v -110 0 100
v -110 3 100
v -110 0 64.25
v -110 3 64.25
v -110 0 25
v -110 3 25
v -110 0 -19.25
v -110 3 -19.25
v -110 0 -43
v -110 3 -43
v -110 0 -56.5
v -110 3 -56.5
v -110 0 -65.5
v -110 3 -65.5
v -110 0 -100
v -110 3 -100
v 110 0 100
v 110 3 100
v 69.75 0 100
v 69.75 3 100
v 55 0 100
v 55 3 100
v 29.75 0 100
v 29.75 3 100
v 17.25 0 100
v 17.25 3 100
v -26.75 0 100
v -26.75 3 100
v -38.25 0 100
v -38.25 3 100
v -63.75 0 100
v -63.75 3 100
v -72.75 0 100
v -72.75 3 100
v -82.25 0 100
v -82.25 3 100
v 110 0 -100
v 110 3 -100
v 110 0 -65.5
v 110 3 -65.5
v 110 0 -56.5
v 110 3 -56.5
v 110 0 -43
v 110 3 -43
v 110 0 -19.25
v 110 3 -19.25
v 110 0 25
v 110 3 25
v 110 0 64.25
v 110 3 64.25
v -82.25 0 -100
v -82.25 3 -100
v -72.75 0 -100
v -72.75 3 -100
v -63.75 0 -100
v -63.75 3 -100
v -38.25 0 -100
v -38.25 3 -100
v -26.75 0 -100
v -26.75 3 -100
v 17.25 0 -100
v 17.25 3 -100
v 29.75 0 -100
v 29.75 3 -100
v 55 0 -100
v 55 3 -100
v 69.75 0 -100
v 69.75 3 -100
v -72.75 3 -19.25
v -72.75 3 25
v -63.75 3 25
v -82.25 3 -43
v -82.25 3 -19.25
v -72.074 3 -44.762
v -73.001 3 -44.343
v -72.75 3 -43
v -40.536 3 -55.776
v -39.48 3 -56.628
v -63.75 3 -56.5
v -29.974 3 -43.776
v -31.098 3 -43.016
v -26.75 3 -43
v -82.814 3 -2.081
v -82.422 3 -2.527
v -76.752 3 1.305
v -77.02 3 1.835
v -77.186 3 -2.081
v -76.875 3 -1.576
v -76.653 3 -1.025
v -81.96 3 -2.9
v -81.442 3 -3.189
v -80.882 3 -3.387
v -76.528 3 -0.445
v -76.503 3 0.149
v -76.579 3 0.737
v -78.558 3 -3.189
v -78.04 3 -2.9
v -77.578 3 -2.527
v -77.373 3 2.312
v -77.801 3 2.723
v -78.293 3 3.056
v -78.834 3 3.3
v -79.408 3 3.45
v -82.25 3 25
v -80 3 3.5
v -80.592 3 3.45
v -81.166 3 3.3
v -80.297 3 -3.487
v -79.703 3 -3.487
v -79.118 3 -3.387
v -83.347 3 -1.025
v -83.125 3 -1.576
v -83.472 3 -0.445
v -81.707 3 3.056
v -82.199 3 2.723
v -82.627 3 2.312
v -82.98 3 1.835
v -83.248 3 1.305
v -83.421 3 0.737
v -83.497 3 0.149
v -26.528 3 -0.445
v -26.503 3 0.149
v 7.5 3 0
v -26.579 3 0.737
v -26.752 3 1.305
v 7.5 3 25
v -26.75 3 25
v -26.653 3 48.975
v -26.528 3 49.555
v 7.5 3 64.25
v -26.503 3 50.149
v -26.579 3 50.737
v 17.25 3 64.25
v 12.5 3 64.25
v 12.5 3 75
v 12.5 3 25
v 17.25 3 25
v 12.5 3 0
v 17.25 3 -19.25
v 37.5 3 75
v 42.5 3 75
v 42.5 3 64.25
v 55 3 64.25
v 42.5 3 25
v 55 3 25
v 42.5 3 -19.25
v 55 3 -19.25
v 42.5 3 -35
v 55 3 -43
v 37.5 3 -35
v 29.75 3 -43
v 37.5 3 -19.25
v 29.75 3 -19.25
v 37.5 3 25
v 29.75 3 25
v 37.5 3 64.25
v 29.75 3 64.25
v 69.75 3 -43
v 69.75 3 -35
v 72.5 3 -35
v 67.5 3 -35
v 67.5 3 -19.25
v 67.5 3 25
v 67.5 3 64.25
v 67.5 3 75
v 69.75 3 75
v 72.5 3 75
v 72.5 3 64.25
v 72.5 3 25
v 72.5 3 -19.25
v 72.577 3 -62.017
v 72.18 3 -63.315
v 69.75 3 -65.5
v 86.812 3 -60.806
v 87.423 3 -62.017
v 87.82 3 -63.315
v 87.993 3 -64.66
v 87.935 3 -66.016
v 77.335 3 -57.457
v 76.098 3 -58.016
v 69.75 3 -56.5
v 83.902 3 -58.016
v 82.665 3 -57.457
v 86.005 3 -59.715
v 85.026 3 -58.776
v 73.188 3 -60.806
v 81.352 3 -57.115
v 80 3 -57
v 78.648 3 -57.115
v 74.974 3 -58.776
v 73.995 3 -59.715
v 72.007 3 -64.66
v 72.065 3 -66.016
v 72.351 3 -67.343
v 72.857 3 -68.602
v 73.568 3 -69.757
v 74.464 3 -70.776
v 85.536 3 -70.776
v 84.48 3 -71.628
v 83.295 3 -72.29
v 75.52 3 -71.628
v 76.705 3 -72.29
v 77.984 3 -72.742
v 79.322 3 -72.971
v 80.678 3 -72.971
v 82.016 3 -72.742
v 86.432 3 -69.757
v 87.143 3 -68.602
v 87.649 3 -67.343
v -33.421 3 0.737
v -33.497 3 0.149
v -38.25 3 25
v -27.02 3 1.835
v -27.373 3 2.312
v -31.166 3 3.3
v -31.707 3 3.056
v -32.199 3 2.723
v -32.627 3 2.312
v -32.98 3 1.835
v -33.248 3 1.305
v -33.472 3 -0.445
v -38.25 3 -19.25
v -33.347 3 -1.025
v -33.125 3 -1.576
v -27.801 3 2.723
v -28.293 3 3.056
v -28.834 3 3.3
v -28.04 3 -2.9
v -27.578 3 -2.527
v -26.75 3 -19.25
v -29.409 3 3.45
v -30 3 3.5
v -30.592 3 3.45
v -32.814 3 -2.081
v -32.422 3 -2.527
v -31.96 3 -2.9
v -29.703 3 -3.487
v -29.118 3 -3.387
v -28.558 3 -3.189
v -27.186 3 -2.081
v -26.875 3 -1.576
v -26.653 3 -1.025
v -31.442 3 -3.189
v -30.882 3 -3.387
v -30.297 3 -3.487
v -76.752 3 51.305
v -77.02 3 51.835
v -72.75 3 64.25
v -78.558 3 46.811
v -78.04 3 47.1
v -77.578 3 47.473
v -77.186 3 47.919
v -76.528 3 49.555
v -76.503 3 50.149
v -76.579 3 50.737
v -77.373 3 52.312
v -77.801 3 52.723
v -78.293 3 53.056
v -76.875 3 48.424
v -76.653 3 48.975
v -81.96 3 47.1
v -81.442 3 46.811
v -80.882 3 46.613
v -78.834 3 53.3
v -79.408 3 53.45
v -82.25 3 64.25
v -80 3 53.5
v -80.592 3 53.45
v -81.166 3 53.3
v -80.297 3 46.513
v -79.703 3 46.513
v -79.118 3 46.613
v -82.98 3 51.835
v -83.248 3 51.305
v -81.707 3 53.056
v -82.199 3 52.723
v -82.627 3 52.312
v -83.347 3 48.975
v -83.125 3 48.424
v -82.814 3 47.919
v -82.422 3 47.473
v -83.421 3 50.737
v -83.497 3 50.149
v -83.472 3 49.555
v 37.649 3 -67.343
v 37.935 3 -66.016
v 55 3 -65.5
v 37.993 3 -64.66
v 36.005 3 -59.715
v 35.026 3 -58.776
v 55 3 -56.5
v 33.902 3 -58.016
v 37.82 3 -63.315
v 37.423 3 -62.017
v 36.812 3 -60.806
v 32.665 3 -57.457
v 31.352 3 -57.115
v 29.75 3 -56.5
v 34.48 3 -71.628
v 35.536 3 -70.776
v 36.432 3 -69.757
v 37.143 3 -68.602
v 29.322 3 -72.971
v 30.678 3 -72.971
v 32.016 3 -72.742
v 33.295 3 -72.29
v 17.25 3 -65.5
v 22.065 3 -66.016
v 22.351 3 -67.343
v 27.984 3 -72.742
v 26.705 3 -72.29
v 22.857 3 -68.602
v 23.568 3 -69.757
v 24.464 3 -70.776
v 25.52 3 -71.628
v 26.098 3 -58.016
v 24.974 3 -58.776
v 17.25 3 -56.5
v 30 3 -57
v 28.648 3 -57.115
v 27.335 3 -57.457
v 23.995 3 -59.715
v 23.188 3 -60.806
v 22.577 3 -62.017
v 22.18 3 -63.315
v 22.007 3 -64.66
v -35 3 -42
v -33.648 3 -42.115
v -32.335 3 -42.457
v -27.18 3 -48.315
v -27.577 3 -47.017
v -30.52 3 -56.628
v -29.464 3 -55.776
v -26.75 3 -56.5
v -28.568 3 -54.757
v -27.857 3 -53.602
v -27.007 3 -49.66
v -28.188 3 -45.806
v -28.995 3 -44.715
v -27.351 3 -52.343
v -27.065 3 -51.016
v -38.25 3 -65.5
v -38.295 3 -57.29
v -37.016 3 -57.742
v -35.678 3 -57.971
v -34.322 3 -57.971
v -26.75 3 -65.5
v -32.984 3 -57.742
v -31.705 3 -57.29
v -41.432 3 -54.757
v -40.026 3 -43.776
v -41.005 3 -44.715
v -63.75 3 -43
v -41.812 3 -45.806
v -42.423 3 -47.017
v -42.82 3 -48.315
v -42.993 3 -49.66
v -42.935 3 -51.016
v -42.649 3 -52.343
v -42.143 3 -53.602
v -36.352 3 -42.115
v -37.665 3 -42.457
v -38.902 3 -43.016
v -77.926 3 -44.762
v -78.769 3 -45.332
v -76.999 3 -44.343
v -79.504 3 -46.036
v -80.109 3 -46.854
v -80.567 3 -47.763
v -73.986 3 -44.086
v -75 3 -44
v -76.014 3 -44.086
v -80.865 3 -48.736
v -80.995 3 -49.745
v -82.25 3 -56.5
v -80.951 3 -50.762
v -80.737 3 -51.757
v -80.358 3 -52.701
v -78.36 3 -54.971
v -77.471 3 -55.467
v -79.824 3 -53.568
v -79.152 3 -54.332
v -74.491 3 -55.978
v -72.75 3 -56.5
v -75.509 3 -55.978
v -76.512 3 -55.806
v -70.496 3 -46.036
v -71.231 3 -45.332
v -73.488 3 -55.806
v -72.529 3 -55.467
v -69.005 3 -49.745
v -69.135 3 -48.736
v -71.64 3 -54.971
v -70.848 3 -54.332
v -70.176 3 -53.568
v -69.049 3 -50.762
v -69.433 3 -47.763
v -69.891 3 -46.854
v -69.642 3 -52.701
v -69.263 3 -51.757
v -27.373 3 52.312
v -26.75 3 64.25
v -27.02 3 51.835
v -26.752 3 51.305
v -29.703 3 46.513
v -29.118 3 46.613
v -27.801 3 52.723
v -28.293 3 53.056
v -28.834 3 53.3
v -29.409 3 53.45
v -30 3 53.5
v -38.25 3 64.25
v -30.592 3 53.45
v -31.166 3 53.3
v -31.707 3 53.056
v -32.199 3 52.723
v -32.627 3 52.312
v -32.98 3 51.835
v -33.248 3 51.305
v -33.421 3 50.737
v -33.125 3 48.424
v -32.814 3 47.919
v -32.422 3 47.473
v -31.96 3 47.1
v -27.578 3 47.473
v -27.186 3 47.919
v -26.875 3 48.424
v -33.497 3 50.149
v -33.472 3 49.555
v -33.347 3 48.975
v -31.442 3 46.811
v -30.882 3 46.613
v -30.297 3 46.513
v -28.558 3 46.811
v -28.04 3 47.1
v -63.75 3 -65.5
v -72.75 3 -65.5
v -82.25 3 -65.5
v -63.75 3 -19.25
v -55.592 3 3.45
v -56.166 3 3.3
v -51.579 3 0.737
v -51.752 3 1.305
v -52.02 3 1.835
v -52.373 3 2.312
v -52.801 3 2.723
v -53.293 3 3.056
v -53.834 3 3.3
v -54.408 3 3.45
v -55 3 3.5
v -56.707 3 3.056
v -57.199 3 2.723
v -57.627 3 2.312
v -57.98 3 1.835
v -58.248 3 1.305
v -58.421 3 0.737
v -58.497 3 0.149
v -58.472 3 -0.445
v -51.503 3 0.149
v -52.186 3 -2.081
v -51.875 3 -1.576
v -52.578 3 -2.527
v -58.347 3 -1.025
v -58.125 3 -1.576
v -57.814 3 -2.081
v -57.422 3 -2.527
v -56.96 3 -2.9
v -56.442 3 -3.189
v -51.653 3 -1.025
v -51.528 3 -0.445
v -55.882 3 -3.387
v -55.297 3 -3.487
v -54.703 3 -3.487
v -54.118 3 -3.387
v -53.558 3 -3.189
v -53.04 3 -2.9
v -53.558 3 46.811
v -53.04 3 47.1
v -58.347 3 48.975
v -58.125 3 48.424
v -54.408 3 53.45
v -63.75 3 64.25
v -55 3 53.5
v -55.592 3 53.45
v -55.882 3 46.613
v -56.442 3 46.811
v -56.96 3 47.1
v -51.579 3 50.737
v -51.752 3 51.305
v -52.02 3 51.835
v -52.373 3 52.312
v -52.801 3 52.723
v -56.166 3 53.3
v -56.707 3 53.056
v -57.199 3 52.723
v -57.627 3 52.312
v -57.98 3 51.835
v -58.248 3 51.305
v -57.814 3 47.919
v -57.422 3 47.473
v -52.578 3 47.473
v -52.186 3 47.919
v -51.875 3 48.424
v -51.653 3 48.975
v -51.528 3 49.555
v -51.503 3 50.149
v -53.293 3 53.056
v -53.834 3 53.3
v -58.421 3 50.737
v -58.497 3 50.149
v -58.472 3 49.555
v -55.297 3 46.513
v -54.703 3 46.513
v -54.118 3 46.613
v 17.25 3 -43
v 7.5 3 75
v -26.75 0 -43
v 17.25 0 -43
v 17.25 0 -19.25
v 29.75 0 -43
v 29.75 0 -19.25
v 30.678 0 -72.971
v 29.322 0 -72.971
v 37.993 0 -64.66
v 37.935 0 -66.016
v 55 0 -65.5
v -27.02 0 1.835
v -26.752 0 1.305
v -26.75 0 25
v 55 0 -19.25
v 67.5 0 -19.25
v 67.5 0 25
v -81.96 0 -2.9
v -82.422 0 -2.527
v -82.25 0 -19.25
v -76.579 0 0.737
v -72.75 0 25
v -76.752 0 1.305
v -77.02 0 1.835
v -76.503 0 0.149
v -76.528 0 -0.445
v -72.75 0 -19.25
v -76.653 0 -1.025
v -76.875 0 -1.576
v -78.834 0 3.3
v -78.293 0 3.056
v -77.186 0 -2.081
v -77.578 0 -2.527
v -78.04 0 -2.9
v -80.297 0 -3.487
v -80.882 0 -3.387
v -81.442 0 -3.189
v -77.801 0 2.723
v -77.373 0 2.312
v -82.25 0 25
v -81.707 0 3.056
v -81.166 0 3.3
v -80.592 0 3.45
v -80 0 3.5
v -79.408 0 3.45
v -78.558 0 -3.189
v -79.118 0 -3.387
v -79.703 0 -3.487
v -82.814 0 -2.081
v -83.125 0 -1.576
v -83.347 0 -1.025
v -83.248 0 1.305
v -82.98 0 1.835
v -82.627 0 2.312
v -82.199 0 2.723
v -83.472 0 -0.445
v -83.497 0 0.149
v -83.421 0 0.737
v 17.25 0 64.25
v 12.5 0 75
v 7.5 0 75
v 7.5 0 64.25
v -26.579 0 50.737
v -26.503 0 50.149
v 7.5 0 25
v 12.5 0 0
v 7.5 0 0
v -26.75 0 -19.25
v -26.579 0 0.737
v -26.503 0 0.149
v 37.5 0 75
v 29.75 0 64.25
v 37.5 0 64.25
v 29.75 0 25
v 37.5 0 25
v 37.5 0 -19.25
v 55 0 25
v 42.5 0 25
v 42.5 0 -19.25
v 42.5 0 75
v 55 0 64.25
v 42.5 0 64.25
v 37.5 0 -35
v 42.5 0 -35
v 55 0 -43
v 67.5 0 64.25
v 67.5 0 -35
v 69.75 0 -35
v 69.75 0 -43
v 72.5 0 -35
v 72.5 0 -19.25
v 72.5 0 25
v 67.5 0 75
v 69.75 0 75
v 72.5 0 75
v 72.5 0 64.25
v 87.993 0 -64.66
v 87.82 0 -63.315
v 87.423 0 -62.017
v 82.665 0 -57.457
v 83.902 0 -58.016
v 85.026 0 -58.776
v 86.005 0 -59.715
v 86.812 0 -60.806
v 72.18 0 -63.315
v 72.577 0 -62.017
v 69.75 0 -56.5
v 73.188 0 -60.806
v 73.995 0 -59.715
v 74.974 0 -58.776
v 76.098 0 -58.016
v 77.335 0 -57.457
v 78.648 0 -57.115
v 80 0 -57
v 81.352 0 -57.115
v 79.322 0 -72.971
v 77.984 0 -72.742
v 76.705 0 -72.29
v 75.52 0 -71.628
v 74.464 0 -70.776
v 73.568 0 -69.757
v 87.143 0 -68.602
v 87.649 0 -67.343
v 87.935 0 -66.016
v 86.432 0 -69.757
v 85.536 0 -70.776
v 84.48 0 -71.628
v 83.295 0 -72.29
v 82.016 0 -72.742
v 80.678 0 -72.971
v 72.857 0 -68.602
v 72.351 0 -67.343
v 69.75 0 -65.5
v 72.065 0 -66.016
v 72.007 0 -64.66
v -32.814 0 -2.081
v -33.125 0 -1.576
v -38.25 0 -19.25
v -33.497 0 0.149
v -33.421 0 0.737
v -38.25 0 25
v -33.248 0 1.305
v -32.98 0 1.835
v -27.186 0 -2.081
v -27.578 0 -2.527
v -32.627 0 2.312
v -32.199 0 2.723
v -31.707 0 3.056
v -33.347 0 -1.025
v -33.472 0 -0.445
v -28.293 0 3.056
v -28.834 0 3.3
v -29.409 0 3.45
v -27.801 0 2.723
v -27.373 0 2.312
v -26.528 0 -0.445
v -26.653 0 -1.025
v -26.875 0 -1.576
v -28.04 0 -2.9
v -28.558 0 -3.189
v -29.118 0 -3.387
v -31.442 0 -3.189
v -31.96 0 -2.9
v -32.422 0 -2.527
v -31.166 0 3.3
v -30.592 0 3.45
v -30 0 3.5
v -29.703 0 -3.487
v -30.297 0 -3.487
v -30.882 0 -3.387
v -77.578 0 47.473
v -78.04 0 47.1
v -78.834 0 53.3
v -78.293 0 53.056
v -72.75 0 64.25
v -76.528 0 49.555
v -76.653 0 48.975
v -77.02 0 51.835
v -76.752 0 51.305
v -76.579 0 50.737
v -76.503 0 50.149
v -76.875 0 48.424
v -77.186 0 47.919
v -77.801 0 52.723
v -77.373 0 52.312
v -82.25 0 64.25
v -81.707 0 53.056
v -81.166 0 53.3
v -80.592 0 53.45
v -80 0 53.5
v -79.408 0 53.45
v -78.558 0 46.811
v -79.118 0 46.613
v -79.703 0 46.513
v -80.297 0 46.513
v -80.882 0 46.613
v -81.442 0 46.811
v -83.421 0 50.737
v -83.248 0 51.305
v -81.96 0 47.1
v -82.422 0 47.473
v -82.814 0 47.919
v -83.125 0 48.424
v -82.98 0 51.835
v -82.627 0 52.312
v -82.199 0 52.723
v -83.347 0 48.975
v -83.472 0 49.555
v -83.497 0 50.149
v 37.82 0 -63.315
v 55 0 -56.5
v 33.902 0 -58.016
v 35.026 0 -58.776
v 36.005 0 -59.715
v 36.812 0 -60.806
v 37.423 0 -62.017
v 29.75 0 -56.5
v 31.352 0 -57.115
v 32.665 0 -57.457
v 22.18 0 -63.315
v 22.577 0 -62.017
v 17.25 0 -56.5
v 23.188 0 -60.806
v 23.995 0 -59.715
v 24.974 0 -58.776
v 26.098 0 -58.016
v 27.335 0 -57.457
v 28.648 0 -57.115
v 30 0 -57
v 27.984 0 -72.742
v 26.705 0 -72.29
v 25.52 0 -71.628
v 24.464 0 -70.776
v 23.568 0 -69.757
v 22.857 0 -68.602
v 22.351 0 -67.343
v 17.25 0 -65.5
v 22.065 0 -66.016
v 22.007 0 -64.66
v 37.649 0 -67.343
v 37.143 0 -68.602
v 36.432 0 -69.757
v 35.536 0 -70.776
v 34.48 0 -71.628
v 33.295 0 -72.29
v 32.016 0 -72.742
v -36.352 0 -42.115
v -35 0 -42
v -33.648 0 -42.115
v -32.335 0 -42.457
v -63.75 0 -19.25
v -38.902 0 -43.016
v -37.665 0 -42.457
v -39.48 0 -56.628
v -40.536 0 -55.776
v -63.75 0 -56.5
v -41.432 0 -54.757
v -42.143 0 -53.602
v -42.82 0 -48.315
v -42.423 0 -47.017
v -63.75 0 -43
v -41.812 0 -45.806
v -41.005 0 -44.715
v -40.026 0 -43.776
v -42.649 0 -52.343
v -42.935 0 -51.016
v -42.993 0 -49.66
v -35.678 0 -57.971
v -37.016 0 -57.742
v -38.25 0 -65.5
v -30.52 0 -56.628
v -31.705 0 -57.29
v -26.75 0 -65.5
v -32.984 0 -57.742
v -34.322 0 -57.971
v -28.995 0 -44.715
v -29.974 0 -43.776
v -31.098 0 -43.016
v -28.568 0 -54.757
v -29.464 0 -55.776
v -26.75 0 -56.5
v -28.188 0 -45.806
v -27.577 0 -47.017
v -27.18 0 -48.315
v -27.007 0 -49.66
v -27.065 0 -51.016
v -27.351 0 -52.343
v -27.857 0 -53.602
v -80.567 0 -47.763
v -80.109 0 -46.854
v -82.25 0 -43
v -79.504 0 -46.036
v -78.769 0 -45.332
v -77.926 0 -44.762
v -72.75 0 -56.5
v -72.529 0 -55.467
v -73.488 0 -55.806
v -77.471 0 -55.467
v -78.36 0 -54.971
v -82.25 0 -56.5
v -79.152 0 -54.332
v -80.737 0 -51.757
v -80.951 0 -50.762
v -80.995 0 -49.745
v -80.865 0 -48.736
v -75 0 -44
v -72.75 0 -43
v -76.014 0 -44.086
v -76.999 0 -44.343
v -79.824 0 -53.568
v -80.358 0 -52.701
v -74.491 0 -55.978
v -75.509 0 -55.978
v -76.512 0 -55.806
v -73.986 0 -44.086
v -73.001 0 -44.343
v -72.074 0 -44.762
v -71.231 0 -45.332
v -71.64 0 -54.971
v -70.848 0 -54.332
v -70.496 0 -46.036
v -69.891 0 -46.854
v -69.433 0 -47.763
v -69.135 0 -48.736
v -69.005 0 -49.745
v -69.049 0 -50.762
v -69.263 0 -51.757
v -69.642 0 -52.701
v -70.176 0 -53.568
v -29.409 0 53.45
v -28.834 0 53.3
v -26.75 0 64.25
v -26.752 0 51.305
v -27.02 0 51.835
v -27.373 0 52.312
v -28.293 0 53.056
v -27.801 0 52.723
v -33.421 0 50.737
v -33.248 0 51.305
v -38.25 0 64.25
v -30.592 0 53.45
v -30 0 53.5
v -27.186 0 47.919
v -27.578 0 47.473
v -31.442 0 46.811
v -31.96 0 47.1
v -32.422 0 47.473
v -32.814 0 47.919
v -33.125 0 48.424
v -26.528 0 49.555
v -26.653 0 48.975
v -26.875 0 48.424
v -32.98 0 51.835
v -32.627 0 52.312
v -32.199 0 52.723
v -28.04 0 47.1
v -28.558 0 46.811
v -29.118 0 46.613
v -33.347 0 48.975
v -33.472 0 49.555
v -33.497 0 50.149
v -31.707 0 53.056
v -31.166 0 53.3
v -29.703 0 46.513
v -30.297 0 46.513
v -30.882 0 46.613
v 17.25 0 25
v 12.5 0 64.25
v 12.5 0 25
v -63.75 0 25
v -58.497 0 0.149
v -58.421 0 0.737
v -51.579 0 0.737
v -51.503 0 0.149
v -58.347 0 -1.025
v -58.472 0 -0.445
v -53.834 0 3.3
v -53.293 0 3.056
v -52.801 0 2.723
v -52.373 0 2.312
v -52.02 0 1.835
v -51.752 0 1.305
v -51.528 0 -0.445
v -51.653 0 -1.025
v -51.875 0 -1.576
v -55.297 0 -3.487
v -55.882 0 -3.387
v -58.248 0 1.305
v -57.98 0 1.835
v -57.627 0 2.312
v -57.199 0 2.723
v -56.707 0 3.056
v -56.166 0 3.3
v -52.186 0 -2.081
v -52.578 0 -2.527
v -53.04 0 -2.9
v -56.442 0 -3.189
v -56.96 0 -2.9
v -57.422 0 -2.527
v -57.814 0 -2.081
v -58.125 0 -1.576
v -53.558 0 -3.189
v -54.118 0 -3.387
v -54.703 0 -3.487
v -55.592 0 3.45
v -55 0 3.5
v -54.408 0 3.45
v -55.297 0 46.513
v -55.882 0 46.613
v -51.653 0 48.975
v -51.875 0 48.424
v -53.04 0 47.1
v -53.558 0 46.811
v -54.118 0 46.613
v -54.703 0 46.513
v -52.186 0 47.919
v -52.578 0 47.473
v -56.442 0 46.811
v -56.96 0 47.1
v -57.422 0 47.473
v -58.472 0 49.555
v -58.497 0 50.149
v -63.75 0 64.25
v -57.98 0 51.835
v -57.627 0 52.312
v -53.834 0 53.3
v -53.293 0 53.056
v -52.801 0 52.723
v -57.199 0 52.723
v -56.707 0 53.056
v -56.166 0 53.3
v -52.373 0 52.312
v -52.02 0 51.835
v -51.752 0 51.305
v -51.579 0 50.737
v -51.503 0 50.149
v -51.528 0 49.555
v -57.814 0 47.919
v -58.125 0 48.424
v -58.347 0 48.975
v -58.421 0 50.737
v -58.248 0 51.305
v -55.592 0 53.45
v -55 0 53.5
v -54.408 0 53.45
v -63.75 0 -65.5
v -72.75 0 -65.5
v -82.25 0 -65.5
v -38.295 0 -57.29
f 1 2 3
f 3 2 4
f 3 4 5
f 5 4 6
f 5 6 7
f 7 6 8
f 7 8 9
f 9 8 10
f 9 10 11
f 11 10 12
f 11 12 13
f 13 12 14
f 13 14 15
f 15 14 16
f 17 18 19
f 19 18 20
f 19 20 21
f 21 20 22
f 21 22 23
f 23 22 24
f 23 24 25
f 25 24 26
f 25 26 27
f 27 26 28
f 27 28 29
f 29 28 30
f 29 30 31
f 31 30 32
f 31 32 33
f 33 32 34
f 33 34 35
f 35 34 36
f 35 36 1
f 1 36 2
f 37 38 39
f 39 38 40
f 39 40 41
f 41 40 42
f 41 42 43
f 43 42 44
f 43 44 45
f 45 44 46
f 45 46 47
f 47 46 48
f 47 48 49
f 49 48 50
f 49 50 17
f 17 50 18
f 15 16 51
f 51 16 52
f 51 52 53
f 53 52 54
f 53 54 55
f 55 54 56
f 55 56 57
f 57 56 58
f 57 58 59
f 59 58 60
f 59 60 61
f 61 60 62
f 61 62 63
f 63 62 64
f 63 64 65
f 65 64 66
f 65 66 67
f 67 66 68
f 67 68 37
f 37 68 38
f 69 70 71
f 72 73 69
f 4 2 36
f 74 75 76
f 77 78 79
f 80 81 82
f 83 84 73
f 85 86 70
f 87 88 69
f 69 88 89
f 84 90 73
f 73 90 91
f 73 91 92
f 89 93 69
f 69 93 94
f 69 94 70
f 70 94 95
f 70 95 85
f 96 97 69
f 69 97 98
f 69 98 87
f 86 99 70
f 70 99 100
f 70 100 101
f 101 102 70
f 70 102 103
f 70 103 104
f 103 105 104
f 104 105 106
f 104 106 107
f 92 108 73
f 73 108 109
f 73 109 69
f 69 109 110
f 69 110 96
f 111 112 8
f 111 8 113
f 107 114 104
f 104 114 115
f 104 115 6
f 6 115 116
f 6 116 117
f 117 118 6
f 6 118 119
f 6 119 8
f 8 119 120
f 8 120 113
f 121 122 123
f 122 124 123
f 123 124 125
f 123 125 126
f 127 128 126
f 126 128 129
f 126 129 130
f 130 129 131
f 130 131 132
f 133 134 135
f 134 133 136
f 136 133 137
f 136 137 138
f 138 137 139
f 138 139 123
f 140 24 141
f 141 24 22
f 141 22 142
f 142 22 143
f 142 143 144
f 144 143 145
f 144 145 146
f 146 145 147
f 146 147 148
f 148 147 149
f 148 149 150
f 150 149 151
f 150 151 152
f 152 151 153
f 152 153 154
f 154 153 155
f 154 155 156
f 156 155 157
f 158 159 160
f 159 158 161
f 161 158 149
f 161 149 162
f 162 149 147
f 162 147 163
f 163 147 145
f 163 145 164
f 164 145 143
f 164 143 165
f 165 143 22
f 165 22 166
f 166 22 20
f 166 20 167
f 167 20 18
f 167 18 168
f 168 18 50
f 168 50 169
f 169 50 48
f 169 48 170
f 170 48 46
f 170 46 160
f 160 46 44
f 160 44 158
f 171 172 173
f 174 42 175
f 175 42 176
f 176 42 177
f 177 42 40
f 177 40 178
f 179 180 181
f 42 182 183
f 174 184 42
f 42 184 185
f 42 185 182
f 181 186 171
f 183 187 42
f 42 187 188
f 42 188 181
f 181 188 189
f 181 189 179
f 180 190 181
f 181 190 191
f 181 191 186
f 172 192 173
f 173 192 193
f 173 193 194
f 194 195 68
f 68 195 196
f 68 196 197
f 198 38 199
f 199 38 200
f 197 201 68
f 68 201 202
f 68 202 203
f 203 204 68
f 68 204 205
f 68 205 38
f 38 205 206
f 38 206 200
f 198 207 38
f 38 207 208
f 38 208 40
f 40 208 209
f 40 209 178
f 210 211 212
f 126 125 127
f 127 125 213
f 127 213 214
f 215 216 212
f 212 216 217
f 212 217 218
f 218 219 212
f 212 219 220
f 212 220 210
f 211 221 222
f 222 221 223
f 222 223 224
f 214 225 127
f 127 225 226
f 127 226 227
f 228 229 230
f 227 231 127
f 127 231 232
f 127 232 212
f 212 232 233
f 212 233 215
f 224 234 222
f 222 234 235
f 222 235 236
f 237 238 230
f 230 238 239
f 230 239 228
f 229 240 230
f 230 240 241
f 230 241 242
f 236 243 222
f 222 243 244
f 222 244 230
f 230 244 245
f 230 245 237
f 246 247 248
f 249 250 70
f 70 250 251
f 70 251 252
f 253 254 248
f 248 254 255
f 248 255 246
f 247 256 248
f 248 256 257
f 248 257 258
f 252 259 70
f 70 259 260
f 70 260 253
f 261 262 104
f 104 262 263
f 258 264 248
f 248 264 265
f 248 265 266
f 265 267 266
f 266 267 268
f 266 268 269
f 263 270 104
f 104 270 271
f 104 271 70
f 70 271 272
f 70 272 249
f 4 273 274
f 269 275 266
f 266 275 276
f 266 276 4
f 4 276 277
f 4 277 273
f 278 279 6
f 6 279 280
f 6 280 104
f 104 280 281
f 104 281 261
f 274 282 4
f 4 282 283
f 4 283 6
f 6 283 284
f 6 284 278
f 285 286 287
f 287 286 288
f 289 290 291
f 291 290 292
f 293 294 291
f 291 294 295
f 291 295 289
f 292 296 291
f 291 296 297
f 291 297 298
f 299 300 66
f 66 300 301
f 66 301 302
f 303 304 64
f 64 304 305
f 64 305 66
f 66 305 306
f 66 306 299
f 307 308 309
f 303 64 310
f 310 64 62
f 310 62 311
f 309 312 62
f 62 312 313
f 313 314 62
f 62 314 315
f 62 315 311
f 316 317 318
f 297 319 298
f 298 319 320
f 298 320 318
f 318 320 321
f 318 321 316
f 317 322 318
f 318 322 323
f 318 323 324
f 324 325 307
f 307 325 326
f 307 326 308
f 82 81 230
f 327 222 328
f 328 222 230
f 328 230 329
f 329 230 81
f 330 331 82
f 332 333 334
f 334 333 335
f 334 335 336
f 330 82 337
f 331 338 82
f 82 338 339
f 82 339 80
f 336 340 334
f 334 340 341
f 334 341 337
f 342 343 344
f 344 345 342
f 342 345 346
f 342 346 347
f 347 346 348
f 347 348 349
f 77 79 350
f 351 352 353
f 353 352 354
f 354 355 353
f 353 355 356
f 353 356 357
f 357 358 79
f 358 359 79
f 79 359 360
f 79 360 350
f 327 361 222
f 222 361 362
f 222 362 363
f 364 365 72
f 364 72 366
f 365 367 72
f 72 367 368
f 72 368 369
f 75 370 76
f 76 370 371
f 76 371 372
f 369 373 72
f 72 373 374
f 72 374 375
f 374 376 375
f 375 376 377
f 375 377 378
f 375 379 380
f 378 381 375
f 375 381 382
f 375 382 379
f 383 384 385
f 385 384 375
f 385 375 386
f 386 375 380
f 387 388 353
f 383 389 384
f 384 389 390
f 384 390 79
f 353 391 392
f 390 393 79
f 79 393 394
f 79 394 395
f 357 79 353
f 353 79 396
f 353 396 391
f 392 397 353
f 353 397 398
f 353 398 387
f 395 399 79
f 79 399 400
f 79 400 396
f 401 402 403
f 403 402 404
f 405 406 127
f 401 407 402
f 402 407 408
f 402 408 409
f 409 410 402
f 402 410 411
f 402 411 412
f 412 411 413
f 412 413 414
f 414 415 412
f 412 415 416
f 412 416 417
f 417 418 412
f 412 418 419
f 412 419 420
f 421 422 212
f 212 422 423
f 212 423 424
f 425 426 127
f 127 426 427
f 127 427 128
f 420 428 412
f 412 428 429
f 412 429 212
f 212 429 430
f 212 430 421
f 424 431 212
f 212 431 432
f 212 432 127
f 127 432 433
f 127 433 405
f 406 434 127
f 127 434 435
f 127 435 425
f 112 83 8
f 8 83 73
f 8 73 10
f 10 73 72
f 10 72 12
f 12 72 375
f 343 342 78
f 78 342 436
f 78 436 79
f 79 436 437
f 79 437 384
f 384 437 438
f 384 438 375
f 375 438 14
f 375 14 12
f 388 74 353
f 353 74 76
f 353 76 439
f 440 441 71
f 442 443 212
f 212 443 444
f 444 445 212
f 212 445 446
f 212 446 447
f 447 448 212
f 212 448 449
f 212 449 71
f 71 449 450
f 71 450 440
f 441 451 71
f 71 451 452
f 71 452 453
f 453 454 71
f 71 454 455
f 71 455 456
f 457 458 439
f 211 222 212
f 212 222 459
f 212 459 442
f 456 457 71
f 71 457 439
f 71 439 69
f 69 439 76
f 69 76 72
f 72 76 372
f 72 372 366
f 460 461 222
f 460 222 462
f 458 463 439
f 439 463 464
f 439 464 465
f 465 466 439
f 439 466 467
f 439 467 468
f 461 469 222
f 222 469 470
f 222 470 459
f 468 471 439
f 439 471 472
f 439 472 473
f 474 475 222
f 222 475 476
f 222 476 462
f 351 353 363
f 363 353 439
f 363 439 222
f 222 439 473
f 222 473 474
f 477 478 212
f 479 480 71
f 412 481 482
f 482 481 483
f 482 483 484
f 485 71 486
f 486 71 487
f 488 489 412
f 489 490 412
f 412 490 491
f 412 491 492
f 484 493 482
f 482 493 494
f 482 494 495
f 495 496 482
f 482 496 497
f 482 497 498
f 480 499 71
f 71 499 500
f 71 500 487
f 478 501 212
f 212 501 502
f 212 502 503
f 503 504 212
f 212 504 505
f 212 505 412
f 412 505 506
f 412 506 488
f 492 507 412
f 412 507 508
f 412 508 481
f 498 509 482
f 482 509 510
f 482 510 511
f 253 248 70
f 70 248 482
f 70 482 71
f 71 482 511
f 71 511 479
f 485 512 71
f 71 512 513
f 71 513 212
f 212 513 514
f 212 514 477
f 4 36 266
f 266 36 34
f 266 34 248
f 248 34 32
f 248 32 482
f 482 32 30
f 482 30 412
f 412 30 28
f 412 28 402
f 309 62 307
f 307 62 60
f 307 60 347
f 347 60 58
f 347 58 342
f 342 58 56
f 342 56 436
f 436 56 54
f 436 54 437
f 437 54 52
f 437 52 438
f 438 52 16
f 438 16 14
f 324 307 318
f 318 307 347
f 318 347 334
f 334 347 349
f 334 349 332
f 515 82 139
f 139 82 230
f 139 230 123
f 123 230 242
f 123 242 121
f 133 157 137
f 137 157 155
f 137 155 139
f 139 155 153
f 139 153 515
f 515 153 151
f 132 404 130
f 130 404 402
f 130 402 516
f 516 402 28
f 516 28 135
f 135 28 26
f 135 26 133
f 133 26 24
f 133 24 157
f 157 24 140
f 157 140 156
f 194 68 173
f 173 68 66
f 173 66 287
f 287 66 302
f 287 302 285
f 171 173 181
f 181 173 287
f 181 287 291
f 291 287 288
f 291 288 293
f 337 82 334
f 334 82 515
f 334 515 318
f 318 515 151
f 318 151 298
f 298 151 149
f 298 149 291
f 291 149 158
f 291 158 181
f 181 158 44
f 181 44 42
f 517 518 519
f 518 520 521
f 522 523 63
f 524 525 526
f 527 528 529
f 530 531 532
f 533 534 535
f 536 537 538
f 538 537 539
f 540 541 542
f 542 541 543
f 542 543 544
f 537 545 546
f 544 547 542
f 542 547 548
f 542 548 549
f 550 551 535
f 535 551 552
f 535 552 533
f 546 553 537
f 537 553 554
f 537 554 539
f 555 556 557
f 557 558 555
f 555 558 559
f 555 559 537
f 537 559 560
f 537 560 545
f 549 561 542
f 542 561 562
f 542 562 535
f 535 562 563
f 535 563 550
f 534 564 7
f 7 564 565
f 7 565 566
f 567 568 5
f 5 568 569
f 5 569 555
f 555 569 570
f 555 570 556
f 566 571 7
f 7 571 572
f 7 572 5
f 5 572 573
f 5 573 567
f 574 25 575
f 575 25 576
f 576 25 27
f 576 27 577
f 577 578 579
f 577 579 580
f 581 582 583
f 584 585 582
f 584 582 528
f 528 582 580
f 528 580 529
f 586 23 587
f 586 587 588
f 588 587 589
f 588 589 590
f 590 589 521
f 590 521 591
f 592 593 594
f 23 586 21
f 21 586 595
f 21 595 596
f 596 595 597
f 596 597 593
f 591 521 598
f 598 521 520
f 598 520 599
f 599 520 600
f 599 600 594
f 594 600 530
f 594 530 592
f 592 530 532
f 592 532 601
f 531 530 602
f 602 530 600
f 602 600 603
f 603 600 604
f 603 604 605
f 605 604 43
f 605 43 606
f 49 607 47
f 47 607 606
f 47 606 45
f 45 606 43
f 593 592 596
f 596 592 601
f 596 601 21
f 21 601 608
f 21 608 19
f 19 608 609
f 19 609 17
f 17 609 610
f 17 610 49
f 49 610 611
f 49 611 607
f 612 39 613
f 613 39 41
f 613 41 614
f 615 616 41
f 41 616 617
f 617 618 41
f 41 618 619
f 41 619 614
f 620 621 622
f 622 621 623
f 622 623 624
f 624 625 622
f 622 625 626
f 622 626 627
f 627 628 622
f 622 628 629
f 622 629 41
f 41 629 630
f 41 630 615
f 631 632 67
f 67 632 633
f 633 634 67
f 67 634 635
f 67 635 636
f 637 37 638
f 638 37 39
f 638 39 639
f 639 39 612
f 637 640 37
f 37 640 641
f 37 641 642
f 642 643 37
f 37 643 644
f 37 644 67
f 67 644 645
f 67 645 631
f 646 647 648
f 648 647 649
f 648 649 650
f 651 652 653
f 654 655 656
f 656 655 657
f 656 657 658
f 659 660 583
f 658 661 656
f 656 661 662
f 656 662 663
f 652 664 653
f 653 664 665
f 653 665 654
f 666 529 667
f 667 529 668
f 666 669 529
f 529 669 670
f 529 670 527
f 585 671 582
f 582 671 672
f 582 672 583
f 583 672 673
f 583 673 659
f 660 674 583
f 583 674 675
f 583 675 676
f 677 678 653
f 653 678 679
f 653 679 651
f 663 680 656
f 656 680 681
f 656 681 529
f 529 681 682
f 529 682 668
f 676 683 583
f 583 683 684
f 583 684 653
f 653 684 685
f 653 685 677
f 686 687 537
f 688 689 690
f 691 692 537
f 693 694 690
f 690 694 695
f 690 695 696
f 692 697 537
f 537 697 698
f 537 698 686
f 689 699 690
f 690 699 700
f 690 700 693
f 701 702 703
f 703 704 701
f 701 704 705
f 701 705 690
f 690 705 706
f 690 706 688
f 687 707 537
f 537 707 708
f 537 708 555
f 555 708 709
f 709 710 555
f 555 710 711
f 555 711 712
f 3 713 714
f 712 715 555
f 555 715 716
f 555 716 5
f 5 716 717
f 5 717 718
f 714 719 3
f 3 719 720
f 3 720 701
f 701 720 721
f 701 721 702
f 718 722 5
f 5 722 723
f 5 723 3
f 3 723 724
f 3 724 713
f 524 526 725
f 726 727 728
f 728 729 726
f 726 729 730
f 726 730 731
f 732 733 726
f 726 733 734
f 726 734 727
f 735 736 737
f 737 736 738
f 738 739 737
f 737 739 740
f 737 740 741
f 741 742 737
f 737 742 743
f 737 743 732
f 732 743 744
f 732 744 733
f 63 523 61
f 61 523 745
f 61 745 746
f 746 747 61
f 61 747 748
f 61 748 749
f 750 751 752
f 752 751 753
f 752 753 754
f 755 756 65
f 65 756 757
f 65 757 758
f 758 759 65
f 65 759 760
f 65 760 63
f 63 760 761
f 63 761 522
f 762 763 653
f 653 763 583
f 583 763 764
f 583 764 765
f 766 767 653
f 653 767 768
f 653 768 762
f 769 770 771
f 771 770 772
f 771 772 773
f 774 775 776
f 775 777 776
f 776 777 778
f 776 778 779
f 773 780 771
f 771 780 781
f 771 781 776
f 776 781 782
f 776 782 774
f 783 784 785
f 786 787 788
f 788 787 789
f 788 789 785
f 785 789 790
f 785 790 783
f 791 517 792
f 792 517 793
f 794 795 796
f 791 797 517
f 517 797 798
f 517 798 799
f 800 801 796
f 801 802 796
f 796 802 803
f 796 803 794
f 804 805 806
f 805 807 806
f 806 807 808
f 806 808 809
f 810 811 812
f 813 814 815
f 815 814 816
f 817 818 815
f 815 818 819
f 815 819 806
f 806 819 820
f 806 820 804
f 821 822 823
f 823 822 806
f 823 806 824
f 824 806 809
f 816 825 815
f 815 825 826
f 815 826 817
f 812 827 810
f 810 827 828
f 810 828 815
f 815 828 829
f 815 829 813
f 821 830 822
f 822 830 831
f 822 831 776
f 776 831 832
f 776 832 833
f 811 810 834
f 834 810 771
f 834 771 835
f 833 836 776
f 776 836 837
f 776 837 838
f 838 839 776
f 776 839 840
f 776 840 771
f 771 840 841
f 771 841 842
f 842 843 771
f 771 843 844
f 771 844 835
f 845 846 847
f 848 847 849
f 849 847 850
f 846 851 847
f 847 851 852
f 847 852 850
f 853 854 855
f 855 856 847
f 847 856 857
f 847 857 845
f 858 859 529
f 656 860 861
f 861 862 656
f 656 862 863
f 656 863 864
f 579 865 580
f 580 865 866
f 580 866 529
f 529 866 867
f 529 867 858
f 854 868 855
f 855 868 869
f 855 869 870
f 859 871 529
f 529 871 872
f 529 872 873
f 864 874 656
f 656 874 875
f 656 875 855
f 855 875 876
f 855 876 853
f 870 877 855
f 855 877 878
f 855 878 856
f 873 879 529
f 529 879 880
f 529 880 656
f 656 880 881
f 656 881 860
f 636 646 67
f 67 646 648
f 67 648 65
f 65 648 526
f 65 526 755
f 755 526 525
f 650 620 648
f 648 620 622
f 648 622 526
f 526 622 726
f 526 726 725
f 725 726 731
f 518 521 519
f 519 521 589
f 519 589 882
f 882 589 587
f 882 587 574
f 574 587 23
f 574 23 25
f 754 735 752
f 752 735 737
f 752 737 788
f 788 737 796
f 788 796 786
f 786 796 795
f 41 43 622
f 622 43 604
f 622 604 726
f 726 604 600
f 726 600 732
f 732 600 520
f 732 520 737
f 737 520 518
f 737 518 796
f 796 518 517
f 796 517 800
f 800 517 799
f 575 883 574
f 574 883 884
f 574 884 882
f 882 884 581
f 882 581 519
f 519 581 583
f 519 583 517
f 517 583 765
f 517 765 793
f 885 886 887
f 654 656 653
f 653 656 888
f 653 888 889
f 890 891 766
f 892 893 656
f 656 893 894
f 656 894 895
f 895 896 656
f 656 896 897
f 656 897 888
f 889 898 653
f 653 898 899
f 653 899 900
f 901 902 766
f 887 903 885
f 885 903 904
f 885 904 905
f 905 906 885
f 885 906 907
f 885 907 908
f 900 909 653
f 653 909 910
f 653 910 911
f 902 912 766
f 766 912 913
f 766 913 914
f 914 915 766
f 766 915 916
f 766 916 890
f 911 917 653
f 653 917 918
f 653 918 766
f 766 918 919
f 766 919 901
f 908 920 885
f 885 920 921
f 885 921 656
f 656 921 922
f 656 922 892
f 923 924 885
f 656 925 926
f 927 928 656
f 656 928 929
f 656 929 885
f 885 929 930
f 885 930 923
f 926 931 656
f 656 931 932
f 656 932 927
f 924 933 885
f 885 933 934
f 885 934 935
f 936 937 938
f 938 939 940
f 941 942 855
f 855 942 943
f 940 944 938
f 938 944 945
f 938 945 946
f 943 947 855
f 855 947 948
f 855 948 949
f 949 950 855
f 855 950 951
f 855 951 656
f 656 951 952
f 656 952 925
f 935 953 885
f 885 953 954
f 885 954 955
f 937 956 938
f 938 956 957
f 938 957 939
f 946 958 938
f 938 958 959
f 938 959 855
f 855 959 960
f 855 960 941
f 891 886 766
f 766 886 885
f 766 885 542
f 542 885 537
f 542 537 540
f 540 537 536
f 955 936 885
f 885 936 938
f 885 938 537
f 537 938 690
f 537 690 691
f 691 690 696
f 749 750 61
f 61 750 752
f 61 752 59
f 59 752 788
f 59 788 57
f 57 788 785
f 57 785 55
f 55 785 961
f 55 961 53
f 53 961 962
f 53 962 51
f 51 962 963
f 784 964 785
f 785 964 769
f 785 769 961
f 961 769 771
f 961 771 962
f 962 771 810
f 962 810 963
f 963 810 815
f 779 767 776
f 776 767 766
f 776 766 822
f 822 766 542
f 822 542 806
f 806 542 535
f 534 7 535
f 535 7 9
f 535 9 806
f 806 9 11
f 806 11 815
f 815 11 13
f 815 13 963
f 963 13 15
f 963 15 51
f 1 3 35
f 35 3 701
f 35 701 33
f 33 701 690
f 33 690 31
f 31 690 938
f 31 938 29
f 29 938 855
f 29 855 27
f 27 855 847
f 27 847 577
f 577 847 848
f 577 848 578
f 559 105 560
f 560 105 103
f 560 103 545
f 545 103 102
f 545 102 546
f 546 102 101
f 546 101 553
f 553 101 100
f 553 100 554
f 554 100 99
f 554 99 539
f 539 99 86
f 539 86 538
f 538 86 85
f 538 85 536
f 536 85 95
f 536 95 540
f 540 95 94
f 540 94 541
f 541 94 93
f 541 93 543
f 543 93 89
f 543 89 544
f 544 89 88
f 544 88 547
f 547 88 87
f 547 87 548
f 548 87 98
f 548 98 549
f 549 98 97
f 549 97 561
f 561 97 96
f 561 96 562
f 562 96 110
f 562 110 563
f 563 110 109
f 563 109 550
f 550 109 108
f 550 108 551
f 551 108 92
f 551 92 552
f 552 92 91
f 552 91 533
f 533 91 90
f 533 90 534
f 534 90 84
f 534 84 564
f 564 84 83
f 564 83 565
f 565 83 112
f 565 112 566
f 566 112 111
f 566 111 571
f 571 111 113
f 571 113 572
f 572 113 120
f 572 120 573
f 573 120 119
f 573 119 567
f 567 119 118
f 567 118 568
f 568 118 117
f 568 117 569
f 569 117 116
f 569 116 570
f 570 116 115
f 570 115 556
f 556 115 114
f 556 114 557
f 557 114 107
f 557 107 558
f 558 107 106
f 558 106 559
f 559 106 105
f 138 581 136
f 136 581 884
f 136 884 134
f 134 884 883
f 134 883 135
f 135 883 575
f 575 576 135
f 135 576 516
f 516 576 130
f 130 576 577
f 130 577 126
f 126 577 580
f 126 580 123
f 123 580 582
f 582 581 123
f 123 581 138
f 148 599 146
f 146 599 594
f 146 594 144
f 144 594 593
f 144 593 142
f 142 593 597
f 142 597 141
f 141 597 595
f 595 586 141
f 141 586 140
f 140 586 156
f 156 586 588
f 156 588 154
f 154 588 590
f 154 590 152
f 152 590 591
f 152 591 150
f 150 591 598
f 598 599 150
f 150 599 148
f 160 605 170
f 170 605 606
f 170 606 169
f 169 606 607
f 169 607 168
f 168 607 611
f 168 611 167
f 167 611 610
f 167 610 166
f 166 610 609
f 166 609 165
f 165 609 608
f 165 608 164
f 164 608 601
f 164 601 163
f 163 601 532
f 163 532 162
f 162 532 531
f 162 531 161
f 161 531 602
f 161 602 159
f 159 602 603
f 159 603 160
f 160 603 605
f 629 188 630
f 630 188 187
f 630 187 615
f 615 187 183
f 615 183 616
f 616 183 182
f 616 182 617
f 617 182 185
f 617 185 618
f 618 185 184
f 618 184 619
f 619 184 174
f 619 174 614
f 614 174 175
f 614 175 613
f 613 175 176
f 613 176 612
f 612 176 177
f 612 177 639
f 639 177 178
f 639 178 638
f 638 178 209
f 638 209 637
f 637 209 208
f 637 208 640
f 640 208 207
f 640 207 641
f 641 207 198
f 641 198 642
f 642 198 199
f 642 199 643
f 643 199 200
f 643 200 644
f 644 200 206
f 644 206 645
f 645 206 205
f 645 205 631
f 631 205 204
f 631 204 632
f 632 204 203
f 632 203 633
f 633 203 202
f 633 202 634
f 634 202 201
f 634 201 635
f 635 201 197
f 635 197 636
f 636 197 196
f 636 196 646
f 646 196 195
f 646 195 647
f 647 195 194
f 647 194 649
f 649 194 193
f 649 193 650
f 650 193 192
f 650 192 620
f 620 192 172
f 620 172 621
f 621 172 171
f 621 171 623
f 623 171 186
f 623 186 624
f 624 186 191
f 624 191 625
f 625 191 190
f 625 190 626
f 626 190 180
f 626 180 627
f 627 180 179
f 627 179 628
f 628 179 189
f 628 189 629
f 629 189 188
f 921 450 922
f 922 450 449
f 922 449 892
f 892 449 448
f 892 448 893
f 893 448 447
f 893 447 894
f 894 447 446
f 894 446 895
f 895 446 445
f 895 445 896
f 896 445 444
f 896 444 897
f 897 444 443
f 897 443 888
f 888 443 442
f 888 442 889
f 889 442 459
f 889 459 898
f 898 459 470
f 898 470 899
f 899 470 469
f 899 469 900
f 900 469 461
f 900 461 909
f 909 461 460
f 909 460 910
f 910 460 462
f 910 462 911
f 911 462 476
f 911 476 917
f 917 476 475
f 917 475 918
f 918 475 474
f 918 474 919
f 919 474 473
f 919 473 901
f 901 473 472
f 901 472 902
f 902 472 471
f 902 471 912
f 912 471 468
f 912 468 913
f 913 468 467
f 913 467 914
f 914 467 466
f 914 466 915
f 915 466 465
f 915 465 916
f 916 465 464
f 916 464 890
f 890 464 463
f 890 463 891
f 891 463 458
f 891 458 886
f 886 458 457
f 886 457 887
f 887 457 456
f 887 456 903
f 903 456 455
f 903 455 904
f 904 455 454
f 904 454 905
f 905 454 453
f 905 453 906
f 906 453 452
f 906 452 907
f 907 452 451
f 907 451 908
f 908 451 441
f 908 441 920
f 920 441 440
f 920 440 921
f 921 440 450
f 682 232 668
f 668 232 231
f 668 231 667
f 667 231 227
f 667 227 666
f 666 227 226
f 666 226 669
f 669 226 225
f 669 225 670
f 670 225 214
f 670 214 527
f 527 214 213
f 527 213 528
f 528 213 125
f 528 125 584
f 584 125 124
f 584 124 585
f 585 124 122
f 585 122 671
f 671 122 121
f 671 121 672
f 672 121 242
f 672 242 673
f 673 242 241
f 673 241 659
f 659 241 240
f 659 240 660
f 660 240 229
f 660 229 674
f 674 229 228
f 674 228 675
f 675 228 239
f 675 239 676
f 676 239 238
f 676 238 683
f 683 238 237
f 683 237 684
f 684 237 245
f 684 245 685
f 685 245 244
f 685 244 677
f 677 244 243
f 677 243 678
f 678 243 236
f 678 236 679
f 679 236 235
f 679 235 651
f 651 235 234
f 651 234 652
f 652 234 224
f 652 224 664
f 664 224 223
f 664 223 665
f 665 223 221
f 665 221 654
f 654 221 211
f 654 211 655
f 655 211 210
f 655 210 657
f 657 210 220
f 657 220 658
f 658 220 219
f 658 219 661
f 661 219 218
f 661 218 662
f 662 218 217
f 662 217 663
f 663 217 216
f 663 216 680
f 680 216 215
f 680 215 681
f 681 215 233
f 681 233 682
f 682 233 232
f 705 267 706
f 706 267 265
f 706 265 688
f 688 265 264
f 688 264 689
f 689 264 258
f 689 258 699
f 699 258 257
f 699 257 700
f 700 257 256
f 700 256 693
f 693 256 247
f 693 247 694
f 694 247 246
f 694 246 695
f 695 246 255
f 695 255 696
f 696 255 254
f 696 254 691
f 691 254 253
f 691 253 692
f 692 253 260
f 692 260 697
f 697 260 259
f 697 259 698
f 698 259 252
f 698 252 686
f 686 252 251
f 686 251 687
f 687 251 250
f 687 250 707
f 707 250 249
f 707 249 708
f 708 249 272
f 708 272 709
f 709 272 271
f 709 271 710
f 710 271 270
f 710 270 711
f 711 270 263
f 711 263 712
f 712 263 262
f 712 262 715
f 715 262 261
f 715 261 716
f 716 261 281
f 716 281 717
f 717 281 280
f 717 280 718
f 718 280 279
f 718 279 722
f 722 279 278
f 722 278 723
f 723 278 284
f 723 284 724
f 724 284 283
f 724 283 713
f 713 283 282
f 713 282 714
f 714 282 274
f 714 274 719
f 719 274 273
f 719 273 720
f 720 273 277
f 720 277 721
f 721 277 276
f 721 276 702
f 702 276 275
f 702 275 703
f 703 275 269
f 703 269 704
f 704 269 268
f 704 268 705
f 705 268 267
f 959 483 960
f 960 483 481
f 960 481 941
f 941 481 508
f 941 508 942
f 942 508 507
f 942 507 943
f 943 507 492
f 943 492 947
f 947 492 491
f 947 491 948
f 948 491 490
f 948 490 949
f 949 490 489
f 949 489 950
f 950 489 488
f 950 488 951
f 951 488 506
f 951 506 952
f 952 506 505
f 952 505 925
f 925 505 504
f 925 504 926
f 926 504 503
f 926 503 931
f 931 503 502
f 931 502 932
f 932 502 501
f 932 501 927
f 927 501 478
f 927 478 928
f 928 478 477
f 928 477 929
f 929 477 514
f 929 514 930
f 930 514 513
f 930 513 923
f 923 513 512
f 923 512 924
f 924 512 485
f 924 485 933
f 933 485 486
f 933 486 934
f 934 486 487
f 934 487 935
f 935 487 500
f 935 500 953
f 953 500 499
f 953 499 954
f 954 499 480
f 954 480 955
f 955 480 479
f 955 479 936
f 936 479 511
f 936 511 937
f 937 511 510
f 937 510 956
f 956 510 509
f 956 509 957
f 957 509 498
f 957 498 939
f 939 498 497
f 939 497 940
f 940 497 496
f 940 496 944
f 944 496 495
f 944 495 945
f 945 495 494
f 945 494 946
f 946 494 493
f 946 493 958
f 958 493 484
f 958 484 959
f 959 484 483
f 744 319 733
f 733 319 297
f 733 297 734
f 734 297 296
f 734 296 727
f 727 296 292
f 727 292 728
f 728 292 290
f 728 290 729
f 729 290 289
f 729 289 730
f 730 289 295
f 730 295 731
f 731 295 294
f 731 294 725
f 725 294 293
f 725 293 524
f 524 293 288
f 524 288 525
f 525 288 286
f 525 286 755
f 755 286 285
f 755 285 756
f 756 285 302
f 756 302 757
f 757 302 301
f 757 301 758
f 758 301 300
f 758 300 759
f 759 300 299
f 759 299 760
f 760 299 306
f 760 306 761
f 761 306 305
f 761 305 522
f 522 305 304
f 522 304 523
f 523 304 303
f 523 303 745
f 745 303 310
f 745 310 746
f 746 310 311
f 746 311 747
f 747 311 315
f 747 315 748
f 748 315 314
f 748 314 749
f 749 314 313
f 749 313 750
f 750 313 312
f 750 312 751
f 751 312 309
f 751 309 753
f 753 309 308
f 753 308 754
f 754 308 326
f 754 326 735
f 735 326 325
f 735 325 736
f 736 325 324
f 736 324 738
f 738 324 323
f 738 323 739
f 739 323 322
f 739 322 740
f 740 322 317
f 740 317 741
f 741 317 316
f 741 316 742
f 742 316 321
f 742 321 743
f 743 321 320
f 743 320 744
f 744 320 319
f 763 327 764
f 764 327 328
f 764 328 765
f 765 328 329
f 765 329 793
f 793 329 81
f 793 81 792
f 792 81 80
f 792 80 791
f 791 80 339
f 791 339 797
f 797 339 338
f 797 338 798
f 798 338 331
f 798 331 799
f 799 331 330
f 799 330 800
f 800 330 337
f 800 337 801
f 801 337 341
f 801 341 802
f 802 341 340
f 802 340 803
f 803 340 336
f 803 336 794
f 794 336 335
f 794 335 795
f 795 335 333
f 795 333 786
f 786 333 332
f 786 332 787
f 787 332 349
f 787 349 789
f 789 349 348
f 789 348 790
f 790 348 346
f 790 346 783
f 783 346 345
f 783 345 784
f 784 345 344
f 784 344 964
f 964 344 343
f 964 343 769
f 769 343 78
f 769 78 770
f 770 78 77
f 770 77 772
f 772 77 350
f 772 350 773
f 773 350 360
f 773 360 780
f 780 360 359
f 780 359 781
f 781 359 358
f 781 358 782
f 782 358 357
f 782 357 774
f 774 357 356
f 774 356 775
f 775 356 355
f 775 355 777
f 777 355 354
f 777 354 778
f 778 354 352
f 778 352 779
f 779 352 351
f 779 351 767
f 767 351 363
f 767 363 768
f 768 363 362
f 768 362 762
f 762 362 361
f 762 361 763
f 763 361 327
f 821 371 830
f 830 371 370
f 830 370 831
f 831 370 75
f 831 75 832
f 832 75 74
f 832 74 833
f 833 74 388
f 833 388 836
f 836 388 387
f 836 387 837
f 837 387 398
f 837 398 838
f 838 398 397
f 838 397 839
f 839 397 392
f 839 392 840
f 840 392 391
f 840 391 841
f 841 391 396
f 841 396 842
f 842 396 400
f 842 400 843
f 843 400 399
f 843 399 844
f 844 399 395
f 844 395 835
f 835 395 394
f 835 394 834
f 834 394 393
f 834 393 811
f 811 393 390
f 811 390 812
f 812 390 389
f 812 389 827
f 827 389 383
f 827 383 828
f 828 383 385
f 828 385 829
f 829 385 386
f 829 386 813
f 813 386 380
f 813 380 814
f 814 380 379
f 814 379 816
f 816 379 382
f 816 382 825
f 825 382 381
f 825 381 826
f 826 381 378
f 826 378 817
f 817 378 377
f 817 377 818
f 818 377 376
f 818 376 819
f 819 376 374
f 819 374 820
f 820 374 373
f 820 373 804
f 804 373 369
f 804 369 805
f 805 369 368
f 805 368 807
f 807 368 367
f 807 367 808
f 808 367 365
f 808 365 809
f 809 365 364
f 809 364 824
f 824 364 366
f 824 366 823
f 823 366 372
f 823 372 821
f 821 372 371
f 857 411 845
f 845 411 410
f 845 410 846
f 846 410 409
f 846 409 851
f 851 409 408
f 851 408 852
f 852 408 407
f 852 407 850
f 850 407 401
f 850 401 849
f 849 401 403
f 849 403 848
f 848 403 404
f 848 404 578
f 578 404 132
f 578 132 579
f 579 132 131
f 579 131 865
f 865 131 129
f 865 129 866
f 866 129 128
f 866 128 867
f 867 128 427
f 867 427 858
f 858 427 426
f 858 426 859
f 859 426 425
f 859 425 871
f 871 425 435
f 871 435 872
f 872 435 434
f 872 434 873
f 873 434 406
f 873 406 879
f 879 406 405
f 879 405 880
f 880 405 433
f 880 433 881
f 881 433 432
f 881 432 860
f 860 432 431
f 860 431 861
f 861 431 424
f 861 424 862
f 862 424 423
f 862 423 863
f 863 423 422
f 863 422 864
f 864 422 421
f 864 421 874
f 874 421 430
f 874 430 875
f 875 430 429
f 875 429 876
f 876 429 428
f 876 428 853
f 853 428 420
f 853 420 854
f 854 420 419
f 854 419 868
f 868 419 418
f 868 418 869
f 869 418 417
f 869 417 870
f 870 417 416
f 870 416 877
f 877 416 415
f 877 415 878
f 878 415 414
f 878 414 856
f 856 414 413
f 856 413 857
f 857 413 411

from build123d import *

# Parameters (mm, degrees)
ESBO_O2_W                = 220
ESBO_O2_H                = 200
RESSALTO_EXTRUS_O1_DEPTH = 3
ESBO_O3_R                = 3.5
ESBO_O3_R_2              = 6
ESBO_O3_R_3              = 8
ESBO_O3_W                = 5
ESBO_O3_H                = 110
ESBO_O3_H_2              = 75
CORTE_EXTRUS_O1_DEPTH    = 149.690954668


with BuildPart() as part:
    # Esboço2 → Ressalto-extrusão1 (new body)
    with BuildSketch(Plane(origin=(0, 0, 0), x_dir=(1, 0, 0), z_dir=(0, 1, 0))):
        Rectangle(ESBO_O2_W, ESBO_O2_H)
    extrude(amount=RESSALTO_EXTRUS_O1_DEPTH)

    # Esboço3 → Corte-extrusão1 (cut, through all)
    with BuildSketch(Plane(origin=(0, 3, 0), x_dir=(1, 0, 0), z_dir=(0, 1, 0))):
        with Locations(Location((-80, 0, 0), (0, 0, 270))):
            Circle(ESBO_O3_R)
        with Locations(Location((-55, 0, 0), (0, 0, 270))):
            Circle(ESBO_O3_R)
        with Locations(Location((-30, 0, 0), (0, 0, 270))):
            Circle(ESBO_O3_R)
        with Locations(Location((-80, -50, 0), (0, 0, 270))):
            Circle(ESBO_O3_R)
        with Locations(Location((-55, -50, 0), (0, 0, 270))):
            Circle(ESBO_O3_R)
        with Locations(Location((-30, -50, 0), (0, 0, 270))):
            Circle(ESBO_O3_R)
        with Locations(Location((-75, 50, 0), (0, 0, 270))):
            Circle(ESBO_O3_R_2)
        with Locations(Location((-35, 50, 0), (0, 0, 270))):
            Circle(ESBO_O3_R_3)
        with Locations(Location((30, 65, 0), (0, 0, 270))):
            Circle(ESBO_O3_R_3)
        with Locations(Location((80, 65, 0), (0, 0, 270))):
            Circle(ESBO_O3_R_3)
        with Locations((70, -20)):
            Rectangle(ESBO_O3_W, ESBO_O3_H)
        with Locations((40, -20)):
            Rectangle(ESBO_O3_W, ESBO_O3_H)
        with Locations((10, -37.5)):
            Rectangle(ESBO_O3_W, ESBO_O3_H_2)
    extrude(amount=-CORTE_EXTRUS_O1_DEPTH, mode=Mode.SUBTRACT)


solid = part.part
